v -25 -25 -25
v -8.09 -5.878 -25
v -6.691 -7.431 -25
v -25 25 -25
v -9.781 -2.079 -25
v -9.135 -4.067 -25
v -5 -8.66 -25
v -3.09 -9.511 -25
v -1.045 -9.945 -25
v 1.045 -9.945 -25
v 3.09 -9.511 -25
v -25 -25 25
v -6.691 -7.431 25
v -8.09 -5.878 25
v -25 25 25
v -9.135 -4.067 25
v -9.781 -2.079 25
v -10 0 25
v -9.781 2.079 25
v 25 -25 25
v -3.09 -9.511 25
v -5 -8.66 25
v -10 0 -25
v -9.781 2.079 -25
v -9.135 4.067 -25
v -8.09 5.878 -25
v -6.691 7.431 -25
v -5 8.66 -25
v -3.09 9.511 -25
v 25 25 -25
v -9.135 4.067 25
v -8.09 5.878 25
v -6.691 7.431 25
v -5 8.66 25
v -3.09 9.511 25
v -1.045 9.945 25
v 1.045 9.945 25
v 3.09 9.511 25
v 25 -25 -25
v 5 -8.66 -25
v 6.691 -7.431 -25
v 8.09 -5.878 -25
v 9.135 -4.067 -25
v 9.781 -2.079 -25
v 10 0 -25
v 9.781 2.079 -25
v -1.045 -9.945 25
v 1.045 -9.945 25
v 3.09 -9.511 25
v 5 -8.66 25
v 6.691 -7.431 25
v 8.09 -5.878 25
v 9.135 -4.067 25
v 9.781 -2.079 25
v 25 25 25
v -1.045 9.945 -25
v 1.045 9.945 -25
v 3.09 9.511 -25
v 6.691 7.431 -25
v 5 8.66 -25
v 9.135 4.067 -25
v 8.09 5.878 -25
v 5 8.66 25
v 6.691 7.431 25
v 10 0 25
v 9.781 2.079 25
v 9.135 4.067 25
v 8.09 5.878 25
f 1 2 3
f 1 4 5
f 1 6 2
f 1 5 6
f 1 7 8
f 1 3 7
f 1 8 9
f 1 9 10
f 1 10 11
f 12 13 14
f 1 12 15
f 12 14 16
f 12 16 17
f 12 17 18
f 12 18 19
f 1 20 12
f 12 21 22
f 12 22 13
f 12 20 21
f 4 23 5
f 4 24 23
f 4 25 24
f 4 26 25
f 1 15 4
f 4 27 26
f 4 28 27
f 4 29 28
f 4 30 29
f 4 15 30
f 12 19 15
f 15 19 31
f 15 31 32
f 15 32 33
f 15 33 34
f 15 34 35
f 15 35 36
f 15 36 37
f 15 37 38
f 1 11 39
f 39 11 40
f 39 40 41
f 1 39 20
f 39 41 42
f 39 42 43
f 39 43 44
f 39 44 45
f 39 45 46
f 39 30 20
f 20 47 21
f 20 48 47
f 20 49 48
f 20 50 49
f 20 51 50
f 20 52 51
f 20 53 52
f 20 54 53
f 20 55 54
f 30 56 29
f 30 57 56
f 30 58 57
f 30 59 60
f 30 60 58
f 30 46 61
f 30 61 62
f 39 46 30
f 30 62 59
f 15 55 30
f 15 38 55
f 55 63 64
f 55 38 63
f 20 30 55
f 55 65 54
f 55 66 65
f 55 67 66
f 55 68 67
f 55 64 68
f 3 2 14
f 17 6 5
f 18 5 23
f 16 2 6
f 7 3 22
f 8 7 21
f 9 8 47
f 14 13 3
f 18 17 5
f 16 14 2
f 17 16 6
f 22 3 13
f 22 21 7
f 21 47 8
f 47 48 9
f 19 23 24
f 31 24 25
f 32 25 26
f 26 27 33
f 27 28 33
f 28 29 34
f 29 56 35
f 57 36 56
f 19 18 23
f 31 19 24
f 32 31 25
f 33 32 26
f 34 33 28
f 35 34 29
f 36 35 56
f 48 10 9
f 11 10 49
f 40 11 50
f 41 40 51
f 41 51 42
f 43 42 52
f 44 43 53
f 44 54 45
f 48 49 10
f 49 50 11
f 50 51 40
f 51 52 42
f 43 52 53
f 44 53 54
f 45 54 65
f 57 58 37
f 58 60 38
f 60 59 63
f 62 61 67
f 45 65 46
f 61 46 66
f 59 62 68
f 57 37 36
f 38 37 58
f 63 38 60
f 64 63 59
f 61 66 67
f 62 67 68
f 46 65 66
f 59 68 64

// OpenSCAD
difference() {
    cube([50, 50, 50], center = true);
    cylinder(h = 50, r = 10, center = true);
}
